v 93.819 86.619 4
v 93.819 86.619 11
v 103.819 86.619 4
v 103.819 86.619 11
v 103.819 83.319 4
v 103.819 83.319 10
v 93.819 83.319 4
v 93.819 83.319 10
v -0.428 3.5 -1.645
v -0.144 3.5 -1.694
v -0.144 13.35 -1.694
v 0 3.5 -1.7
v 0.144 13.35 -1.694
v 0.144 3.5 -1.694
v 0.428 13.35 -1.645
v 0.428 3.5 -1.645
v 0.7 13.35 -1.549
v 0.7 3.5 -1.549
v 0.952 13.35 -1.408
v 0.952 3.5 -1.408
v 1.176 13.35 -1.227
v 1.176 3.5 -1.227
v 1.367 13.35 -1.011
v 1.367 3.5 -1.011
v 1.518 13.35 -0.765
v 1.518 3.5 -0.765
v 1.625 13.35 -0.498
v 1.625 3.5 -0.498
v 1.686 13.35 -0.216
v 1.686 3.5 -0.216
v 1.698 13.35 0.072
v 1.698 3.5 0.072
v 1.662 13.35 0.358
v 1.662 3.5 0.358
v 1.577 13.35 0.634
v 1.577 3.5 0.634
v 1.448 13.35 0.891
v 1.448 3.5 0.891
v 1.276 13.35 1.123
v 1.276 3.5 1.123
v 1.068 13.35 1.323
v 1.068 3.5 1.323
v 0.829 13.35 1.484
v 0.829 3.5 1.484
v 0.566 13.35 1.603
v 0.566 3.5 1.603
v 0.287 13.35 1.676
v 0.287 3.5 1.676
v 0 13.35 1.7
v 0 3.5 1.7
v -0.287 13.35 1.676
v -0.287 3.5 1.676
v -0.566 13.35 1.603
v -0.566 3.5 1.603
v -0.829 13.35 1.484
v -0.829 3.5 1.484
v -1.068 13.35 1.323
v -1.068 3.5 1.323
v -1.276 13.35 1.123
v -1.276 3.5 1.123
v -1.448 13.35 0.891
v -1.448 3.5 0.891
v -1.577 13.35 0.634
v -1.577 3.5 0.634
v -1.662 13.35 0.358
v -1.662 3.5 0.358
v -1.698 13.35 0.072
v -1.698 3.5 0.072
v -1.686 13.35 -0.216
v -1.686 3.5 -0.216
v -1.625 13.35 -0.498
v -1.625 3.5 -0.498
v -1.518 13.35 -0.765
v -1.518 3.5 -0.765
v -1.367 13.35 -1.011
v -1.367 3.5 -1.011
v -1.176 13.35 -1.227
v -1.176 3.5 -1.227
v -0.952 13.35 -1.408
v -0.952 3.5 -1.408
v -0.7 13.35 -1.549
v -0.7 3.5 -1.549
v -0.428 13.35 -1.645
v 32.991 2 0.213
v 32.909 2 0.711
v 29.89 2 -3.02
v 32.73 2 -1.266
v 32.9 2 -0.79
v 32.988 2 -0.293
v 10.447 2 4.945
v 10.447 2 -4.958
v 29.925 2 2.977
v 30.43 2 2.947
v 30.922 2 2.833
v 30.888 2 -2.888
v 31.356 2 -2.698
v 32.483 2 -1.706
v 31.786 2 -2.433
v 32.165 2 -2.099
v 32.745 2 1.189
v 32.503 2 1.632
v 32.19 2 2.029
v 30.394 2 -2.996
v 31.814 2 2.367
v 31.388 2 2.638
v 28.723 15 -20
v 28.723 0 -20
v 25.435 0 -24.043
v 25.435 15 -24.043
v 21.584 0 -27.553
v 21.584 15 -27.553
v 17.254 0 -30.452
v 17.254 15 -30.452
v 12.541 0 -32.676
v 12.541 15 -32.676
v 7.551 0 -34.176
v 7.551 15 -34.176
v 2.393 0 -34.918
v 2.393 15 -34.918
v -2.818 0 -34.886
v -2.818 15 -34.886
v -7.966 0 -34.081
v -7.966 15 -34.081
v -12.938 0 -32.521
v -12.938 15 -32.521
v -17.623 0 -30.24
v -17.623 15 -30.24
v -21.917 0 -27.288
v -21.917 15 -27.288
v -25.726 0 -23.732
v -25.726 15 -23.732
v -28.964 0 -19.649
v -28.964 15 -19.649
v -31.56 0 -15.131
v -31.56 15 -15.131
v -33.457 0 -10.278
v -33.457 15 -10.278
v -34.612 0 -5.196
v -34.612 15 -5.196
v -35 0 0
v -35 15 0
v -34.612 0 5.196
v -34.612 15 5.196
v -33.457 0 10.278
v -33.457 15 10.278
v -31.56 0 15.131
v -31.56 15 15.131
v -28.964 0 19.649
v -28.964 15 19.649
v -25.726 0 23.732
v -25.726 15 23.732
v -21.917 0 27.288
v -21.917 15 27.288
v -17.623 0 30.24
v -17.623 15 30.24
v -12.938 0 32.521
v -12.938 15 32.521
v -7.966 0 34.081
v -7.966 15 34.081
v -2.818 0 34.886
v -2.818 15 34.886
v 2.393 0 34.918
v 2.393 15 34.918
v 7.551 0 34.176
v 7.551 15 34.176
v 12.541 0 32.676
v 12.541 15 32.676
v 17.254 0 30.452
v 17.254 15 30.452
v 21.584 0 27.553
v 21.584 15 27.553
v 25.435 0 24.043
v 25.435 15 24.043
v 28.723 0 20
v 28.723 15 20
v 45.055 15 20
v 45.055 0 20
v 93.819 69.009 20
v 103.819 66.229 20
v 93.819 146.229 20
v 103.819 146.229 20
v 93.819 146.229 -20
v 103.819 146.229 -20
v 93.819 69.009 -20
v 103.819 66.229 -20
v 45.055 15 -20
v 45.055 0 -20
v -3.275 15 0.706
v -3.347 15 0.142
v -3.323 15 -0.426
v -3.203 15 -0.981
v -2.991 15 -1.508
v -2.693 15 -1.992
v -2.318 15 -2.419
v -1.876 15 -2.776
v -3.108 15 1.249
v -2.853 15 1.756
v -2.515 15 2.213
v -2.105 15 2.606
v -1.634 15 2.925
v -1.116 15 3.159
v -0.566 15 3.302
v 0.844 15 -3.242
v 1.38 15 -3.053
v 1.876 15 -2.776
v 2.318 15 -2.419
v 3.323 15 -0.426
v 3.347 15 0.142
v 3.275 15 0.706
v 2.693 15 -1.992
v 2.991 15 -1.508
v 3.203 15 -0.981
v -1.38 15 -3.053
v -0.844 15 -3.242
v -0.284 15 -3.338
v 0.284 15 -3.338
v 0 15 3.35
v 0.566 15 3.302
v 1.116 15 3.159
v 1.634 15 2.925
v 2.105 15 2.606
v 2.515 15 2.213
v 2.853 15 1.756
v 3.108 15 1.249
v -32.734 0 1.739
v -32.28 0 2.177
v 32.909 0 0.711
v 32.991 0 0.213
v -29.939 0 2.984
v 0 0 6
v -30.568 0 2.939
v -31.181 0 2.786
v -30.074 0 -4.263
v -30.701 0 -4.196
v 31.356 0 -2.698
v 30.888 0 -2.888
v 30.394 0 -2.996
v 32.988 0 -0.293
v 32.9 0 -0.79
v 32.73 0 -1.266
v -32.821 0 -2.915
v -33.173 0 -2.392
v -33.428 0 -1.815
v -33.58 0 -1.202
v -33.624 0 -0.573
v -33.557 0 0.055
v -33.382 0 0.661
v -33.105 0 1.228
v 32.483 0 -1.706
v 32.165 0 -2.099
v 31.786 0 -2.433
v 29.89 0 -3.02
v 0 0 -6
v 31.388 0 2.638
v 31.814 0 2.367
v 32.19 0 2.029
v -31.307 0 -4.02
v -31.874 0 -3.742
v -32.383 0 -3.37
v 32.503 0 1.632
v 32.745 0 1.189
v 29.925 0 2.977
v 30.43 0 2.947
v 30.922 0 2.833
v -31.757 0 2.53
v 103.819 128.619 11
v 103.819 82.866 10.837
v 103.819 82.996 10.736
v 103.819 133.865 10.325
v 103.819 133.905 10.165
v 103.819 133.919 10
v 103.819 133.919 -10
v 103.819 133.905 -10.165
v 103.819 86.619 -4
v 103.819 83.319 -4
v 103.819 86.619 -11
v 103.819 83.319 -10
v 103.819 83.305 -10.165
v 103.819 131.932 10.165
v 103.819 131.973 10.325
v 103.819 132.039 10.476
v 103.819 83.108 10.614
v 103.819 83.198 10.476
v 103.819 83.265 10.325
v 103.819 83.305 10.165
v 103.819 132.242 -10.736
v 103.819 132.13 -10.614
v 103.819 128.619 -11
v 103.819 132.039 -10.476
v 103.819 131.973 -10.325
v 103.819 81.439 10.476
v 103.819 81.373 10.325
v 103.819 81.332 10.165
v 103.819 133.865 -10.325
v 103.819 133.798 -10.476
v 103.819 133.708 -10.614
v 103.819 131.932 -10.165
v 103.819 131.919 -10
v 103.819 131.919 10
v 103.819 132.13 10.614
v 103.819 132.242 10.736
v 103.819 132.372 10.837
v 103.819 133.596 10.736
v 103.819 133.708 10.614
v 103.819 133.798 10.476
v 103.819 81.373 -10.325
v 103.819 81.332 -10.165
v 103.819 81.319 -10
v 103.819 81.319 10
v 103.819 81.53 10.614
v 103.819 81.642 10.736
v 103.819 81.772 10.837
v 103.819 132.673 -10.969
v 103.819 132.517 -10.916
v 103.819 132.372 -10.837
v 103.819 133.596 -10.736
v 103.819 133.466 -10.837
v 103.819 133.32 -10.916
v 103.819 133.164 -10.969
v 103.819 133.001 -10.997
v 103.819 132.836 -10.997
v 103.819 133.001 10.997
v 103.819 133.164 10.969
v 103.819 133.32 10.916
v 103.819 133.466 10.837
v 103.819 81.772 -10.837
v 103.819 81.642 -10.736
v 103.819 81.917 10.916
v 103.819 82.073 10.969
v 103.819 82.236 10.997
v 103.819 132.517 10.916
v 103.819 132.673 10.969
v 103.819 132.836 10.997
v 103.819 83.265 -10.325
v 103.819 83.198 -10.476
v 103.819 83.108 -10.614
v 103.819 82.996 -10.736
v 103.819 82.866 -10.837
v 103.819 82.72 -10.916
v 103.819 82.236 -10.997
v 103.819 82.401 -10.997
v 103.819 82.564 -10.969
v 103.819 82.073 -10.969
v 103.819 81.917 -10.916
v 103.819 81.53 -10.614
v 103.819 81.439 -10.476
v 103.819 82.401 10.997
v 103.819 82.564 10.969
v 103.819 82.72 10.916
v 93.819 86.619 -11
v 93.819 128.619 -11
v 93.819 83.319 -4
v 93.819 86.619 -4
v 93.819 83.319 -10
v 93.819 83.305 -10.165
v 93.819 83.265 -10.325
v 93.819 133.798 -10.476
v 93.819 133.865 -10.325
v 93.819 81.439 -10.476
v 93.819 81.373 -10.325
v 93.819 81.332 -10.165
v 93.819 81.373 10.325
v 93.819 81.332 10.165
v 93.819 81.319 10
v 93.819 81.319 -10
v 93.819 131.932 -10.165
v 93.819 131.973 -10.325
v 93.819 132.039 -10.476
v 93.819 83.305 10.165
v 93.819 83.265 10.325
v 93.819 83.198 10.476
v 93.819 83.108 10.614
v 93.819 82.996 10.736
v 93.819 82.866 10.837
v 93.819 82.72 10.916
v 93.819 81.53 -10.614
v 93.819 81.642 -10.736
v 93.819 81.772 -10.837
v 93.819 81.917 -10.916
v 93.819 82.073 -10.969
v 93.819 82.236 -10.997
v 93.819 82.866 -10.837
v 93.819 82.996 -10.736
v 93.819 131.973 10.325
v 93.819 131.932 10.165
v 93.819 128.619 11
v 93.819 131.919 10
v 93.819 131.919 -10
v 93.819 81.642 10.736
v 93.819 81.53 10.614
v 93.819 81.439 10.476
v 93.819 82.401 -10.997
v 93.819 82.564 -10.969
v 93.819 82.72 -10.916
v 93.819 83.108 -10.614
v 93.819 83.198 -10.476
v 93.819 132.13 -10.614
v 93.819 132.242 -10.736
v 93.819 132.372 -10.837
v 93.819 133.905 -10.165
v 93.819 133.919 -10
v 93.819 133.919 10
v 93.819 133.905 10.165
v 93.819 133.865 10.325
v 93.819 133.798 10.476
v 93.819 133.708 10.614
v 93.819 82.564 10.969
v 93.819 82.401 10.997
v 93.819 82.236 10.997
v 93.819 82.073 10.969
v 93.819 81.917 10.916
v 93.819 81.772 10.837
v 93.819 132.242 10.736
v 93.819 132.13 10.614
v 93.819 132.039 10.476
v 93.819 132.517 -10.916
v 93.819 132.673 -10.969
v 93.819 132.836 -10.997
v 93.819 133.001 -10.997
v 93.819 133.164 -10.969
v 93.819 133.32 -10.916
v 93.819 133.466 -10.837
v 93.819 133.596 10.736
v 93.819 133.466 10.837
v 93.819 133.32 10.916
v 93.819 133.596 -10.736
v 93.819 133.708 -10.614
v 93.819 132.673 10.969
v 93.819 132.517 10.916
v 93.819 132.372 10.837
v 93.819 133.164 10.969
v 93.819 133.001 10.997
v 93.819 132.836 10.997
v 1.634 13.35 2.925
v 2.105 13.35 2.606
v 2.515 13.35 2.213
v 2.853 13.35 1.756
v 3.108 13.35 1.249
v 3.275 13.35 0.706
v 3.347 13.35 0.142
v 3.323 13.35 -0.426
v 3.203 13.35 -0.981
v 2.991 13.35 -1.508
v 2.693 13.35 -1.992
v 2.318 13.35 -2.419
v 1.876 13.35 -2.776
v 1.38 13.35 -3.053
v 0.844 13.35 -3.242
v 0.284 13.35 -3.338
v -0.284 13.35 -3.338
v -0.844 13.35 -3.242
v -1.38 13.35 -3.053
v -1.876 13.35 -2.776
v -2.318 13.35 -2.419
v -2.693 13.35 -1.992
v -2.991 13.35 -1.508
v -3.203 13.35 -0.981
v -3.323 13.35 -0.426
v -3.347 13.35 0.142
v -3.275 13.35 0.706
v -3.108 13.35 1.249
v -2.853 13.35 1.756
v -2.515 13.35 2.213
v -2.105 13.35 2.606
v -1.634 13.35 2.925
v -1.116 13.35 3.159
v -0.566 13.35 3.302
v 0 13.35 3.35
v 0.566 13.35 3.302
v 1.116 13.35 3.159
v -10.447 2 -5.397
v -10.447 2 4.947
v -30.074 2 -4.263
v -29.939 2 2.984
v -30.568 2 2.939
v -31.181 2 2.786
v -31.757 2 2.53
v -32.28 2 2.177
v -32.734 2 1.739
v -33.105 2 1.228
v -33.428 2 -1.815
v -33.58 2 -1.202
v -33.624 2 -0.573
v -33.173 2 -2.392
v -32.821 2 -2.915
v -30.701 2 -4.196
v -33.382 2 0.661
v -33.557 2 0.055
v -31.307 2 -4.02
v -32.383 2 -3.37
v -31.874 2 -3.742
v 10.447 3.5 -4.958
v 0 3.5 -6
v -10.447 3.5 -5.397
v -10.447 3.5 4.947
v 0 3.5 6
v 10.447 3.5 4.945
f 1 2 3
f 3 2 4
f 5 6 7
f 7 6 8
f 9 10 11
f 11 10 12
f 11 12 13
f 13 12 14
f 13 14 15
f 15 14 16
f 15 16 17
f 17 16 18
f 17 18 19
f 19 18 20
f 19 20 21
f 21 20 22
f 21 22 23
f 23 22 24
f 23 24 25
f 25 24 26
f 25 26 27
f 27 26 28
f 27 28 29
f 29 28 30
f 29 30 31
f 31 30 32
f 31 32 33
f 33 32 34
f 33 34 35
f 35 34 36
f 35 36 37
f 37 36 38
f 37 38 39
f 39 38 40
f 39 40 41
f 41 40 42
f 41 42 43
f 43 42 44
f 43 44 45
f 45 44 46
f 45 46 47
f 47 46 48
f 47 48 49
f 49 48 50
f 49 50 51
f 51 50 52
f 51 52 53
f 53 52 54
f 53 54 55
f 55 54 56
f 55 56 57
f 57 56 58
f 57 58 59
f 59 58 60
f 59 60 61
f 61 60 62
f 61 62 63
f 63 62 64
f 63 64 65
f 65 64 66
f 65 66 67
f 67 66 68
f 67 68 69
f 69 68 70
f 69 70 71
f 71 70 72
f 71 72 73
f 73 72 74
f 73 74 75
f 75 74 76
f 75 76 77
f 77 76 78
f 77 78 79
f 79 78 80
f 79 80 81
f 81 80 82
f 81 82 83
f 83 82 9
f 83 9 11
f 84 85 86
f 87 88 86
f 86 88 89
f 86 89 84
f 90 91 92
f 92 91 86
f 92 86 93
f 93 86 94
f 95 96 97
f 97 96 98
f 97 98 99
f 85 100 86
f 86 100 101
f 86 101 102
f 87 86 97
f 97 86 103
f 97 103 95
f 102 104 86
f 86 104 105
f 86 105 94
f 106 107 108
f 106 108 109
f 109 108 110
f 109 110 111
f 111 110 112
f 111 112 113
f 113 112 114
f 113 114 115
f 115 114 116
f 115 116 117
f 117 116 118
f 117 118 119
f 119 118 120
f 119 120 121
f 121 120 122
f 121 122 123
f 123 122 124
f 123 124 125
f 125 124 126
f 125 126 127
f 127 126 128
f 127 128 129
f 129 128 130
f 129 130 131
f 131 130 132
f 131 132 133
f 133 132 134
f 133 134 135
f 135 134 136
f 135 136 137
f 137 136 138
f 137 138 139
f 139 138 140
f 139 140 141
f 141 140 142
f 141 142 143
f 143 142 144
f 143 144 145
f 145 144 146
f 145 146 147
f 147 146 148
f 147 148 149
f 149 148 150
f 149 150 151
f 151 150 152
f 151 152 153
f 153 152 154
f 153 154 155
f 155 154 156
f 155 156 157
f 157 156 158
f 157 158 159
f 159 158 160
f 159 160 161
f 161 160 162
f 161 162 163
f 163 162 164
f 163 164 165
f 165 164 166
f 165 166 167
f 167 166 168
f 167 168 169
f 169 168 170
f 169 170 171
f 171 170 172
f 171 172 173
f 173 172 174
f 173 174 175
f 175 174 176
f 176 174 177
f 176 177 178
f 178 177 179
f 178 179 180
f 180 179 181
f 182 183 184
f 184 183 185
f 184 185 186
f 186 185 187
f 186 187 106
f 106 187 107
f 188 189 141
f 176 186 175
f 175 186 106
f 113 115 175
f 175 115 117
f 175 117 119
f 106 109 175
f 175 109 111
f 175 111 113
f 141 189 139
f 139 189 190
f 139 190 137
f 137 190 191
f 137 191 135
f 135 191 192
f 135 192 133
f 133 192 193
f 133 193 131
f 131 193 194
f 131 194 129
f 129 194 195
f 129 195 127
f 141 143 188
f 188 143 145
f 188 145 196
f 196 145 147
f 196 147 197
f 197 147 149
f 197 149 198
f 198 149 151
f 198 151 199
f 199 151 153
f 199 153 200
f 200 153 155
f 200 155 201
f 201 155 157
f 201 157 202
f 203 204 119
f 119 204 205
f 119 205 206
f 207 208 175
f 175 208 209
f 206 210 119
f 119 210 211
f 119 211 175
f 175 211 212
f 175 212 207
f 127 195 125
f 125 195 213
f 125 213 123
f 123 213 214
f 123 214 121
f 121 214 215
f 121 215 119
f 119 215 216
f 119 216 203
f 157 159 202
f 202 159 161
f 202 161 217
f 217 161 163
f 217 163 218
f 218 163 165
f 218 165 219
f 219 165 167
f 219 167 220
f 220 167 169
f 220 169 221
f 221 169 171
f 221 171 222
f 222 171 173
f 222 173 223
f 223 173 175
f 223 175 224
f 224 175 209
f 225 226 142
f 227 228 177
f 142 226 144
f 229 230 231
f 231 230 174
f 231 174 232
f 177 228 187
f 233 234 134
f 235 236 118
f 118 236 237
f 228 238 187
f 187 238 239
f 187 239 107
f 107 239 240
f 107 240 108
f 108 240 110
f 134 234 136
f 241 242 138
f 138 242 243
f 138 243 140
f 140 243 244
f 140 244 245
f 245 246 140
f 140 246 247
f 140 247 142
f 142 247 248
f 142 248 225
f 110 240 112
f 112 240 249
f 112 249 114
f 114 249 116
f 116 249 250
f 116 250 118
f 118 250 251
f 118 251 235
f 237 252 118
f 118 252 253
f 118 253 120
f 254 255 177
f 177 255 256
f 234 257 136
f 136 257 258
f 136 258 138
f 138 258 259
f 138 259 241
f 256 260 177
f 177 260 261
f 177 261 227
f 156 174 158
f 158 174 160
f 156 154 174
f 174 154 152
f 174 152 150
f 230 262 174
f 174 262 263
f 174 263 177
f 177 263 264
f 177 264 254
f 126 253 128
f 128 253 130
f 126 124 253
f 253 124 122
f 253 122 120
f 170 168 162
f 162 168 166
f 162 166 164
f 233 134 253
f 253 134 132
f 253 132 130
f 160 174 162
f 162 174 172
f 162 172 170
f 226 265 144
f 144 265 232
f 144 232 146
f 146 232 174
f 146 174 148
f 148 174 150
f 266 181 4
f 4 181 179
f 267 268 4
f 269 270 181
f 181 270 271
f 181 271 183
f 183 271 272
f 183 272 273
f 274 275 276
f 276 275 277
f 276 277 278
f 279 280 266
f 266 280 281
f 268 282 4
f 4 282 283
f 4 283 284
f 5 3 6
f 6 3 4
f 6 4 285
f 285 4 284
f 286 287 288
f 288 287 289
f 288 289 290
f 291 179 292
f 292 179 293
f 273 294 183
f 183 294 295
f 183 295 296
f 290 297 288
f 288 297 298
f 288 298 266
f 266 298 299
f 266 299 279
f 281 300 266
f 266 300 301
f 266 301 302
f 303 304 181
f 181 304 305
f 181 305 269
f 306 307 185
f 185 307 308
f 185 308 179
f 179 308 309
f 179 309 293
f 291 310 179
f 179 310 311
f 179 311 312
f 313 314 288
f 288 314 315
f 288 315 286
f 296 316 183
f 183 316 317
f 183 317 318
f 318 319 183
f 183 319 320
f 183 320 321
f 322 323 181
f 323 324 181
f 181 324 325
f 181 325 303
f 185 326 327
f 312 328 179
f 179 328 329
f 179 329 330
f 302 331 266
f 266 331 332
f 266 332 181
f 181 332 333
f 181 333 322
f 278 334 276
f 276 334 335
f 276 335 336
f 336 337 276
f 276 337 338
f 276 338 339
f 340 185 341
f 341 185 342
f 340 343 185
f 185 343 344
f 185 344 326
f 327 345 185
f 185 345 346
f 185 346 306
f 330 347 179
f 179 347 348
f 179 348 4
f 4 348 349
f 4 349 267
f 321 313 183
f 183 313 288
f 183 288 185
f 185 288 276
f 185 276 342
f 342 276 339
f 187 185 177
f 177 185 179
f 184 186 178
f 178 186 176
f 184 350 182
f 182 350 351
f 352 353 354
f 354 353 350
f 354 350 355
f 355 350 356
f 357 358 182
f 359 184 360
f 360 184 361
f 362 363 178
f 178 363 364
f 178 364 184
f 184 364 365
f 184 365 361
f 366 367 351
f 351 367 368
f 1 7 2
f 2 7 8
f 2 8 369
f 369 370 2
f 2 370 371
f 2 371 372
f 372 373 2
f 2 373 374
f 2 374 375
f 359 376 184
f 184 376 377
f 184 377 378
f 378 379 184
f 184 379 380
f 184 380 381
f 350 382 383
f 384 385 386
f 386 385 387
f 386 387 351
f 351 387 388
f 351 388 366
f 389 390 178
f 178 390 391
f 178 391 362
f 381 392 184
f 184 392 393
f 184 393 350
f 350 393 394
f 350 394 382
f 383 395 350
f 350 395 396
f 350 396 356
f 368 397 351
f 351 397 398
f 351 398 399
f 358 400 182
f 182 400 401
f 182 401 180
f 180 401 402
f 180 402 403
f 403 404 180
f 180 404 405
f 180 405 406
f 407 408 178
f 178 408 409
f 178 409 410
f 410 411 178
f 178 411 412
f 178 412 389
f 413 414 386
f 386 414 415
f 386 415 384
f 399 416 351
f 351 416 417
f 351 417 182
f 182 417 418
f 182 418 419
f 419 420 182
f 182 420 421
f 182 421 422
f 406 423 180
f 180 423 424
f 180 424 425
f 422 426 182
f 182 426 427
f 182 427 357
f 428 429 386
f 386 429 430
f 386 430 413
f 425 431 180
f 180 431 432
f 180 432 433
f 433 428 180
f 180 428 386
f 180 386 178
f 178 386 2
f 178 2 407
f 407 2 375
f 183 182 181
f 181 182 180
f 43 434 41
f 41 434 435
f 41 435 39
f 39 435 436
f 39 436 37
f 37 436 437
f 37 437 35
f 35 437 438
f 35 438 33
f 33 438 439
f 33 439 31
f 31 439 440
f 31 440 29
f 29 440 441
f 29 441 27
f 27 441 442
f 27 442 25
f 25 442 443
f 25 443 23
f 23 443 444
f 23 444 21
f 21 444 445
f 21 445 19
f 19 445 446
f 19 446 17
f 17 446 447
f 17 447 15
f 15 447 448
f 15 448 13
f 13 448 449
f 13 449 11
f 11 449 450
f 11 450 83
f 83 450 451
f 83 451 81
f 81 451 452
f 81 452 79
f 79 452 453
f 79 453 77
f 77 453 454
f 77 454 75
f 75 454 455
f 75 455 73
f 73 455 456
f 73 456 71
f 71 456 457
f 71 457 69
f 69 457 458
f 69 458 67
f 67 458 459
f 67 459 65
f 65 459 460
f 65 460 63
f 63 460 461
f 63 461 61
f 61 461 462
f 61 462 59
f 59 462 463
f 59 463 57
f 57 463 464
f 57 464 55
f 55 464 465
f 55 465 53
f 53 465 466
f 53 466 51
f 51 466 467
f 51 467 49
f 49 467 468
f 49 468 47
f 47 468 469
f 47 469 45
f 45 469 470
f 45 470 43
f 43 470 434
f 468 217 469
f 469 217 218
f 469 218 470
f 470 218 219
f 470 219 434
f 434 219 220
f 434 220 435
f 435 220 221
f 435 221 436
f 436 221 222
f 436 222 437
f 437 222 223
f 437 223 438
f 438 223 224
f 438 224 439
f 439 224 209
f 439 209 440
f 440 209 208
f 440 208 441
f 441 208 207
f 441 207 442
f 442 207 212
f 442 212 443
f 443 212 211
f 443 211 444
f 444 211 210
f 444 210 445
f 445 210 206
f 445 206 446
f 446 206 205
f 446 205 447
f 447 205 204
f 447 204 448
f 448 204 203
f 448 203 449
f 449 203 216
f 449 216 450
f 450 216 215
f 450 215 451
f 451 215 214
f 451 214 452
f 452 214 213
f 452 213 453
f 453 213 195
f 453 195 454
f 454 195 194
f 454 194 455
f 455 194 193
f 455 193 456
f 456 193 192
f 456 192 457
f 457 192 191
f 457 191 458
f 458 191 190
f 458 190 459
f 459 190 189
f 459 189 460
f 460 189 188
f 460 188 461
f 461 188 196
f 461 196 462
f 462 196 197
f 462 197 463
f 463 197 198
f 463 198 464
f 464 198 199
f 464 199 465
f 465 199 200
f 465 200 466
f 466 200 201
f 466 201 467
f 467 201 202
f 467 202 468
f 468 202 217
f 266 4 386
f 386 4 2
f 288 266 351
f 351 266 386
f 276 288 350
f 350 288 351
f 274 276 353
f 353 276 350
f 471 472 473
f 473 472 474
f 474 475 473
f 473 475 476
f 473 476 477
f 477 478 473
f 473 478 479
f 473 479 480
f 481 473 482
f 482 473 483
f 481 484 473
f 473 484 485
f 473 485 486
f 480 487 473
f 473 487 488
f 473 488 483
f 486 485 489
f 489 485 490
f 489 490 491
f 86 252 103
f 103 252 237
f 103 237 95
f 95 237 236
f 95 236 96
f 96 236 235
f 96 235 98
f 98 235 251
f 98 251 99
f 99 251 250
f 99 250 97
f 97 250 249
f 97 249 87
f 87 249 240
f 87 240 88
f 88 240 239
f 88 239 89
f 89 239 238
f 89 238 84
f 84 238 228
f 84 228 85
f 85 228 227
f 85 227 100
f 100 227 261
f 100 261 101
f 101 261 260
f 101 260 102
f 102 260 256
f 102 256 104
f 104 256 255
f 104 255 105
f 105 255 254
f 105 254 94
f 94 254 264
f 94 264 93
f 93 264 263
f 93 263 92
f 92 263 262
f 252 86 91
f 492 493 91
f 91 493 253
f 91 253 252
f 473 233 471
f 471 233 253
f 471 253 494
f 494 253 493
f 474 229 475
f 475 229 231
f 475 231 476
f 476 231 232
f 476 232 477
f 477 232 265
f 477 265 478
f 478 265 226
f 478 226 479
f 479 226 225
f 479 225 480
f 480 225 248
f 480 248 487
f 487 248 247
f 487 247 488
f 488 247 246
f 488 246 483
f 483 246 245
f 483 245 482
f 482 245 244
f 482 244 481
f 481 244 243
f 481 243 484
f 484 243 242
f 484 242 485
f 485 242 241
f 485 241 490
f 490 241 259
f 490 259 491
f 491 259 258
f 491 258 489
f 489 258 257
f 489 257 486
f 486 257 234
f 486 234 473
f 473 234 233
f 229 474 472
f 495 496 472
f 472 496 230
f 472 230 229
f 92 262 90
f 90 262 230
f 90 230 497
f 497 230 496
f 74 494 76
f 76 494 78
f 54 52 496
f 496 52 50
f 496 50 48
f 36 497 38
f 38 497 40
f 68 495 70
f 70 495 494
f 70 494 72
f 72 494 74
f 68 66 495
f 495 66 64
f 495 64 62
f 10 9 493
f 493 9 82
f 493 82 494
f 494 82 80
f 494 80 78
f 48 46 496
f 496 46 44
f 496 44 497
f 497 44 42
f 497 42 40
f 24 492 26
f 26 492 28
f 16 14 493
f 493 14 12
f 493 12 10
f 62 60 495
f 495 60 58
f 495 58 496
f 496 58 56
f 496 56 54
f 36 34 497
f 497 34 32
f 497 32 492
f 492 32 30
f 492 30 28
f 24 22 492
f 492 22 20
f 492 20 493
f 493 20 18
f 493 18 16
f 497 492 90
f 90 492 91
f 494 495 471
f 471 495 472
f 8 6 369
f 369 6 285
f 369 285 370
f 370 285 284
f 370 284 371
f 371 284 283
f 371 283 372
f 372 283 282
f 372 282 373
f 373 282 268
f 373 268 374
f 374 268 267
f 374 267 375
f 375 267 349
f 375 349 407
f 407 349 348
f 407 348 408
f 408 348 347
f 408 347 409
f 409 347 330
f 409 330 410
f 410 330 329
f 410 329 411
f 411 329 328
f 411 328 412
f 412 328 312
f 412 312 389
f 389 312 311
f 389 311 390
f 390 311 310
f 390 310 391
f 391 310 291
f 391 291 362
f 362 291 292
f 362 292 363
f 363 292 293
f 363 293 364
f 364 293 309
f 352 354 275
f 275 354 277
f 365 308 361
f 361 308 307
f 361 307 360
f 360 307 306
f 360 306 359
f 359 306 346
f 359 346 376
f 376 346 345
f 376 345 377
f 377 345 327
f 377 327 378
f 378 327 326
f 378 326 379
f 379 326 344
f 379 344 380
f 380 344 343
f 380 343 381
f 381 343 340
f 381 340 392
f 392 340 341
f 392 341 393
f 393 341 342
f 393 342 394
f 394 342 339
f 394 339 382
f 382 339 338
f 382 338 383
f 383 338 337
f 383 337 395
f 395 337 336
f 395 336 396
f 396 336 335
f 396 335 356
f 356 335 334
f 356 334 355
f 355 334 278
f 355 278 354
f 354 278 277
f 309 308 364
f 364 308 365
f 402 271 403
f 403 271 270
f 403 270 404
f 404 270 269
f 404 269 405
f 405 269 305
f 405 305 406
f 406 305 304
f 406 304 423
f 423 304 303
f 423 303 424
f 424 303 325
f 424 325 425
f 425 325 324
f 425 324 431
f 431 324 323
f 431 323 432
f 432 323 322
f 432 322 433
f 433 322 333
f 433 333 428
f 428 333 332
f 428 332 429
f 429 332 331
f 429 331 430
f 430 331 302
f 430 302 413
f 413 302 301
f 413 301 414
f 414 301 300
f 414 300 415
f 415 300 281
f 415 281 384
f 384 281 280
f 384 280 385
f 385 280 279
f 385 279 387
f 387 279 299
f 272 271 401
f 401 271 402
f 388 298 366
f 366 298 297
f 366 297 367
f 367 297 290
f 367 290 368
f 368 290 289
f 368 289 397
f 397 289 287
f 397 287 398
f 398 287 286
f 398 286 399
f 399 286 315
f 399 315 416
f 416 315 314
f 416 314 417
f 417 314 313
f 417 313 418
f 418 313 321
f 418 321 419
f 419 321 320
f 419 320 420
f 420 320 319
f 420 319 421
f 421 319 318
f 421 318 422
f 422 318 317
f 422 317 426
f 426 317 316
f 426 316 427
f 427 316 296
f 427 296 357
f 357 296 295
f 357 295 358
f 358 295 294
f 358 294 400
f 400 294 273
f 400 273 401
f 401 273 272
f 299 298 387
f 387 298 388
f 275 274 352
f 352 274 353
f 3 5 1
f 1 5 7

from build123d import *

# Parameters (mm, degrees)
EXTRUDE_1_DEPTH        = 15
EXTRUDE_2_DEPTH        = 40
F_1_4_BASE_D           = 3.4
F_1_4_BASE_CBORE_D     = 6.7
F_1_4_BASE_CBORE_DEPTH = 1.65
SKETCH_11_W            = 22
SKETCH_11_H            = 42
CUT_EXTRUDE_1_DEPTH    = 32
CUT_EXTRUDE_3_DEPTH    = 2
CUT_EXTRUDE_4_DEPTH    = 3.5
CUT_EXTRUDE_5_DEPTH    = 20
SKETCH_22_W            = 8
SKETCH_22_H            = 3.3
CUT_EXTRUDE_6_DEPTH    = 20


with BuildPart() as part:
    # 草图1 → 凸台-拉伸1 (new body)
    with BuildSketch(Plane(origin=(0, 0, 0), x_dir=(1, 0, 0), z_dir=(0, 1, 0))):
        with BuildLine():
            Line((45.055476805, 20), (28.722813233, 20))
            ThreePointArc((28.722813233, 20), (33.393850206, 10.480971731), (35, 0))
            ThreePointArc((35, 0), (33.393850206, -10.480971731), (28.722813233, -20))
            Line((28.722813233, -20), (45.055476805, -20))
            Line((45.055476805, -20), (45.055476805, 20))
        make_face()
        with BuildLine():
            Line((0.055476805, -20), (0.055476805, 20))
            Line((0.055476805, 20), (28.722813233, 20))
            ThreePointArc((28.722813233, 20), (-35, 0), (28.722813233, -20))
            Line((28.722813233, -20), (0.055476805, -20))
        make_face()
        with BuildLine():
            Line((28.722813233, 20), (0.055476805, 20))
            Line((0.055476805, 20), (0.055476805, -20))
            Line((0.055476805, -20), (28.722813233, -20))
            ThreePointArc((28.722813233, -20), (33.393850206, -10.480971731), (35, 0))
            ThreePointArc((35, 0), (33.393850206, 10.480971731), (28.722813233, 20))
        make_face()
    extrude(amount=EXTRUDE_1_DEPTH)

    # 草图2 → 凸台-拉伸2 (add)
    with BuildSketch(Plane.XY.offset(20)):
        Polygon((45.055476805, 0), (103.81943921, 66.228799241), (103.81943921, 146.228799241), (93.81943921, 146.228799241), (93.81943921, 69.009357532), (45.055476805, 15), align=None)
    extrude(amount=-EXTRUDE_2_DEPTH)

    # 1/4 六角头螺钉的柱形沉头孔base (through all)
    with Locations(Plane(origin=(0, 15, 0), x_dir=(1, 0, 0), z_dir=(0, 1, 0))):
        with Locations((0, 0)):
            CounterBoreHole(F_1_4_BASE_D / 2, F_1_4_BASE_CBORE_D / 2, F_1_4_BASE_CBORE_DEPTH)

    # 草图11 → 切除-拉伸1 (cut)
    with BuildSketch(Plane(origin=(103.81943921, 0, 0), x_dir=(0, 0, -1), z_dir=(1, 0, 0))):
        with Locations((0, 107.618799241)):
            Rectangle(SKETCH_11_W, SKETCH_11_H)
    extrude(amount=-CUT_EXTRUDE_1_DEPTH, mode=Mode.SUBTRACT)

    # 草图19 → 切除-拉伸3 (cut)
    with BuildSketch(Plane.XZ):
        with BuildLine():
            Line((-29.938978194, 2.983548036), (0, 6))
            Line((0, 6), (29.925496738, 2.977040035))
            ThreePointArc((29.925496738, 2.977040035), (32.999946297, -0.039985046), (29.889613095, -3.020003134))
            Line((29.889613095, -3.020003134), (0, -6))
            Line((0, -6), (-30.07371717, -4.263466486))
            ThreePointArc((-30.07371717, -4.263466486), (-33.623512821, -0.572707651), (-29.938978194, 2.983548036))
        make_face()
    extrude(amount=-CUT_EXTRUDE_3_DEPTH, mode=Mode.SUBTRACT)

    # 草图20 → 切除-拉伸4 (cut)
    with BuildSketch(Plane.XZ):
        Polygon((0, 6), (-10.447108364, 4.947418969), (-10.447108364, -5.396757185), (0, -6), (10.446834114, -4.958449786), (10.446834114, 4.944700515), align=None)
    extrude(amount=-CUT_EXTRUDE_4_DEPTH, mode=Mode.SUBTRACT)

    # 草图21 → 切除-拉伸5 (cut)
    with BuildSketch(Plane(origin=(103.81943921, 0, 0), x_dir=(0, 0, -1), z_dir=(1, 0, 0))):
        with BuildLine():
            Line((-10, 133.918799241), (10, 133.918799241))
            ThreePointArc((10, 133.918799241), (11, 132.918799241), (10, 131.918799241))
            Line((10, 131.918799241), (-10, 131.918799241))
            ThreePointArc((-10, 131.918799241), (-11, 132.918799241), (-10, 133.918799241))
        make_face()
        with BuildLine():
            Line((-10, 83.318799241), (10, 83.318799241))
            ThreePointArc((10, 83.318799241), (11, 82.318799241), (10, 81.318799241))
            Line((10, 81.318799241), (-10, 81.318799241))
            ThreePointArc((-10, 81.318799241), (-11, 82.318799241), (-10, 83.318799241))
        make_face()
    extrude(amount=-CUT_EXTRUDE_5_DEPTH, mode=Mode.SUBTRACT)

    # 草图22 → 切除-拉伸6 (cut)
    with BuildSketch(Plane(origin=(103.81943921, 0, 0), x_dir=(0, 0, -1), z_dir=(1, 0, 0))):
        with Locations((0, 84.968799241)):
            Rectangle(SKETCH_22_W, SKETCH_22_H)
    extrude(amount=-CUT_EXTRUDE_6_DEPTH, mode=Mode.SUBTRACT)


solid = part.part
